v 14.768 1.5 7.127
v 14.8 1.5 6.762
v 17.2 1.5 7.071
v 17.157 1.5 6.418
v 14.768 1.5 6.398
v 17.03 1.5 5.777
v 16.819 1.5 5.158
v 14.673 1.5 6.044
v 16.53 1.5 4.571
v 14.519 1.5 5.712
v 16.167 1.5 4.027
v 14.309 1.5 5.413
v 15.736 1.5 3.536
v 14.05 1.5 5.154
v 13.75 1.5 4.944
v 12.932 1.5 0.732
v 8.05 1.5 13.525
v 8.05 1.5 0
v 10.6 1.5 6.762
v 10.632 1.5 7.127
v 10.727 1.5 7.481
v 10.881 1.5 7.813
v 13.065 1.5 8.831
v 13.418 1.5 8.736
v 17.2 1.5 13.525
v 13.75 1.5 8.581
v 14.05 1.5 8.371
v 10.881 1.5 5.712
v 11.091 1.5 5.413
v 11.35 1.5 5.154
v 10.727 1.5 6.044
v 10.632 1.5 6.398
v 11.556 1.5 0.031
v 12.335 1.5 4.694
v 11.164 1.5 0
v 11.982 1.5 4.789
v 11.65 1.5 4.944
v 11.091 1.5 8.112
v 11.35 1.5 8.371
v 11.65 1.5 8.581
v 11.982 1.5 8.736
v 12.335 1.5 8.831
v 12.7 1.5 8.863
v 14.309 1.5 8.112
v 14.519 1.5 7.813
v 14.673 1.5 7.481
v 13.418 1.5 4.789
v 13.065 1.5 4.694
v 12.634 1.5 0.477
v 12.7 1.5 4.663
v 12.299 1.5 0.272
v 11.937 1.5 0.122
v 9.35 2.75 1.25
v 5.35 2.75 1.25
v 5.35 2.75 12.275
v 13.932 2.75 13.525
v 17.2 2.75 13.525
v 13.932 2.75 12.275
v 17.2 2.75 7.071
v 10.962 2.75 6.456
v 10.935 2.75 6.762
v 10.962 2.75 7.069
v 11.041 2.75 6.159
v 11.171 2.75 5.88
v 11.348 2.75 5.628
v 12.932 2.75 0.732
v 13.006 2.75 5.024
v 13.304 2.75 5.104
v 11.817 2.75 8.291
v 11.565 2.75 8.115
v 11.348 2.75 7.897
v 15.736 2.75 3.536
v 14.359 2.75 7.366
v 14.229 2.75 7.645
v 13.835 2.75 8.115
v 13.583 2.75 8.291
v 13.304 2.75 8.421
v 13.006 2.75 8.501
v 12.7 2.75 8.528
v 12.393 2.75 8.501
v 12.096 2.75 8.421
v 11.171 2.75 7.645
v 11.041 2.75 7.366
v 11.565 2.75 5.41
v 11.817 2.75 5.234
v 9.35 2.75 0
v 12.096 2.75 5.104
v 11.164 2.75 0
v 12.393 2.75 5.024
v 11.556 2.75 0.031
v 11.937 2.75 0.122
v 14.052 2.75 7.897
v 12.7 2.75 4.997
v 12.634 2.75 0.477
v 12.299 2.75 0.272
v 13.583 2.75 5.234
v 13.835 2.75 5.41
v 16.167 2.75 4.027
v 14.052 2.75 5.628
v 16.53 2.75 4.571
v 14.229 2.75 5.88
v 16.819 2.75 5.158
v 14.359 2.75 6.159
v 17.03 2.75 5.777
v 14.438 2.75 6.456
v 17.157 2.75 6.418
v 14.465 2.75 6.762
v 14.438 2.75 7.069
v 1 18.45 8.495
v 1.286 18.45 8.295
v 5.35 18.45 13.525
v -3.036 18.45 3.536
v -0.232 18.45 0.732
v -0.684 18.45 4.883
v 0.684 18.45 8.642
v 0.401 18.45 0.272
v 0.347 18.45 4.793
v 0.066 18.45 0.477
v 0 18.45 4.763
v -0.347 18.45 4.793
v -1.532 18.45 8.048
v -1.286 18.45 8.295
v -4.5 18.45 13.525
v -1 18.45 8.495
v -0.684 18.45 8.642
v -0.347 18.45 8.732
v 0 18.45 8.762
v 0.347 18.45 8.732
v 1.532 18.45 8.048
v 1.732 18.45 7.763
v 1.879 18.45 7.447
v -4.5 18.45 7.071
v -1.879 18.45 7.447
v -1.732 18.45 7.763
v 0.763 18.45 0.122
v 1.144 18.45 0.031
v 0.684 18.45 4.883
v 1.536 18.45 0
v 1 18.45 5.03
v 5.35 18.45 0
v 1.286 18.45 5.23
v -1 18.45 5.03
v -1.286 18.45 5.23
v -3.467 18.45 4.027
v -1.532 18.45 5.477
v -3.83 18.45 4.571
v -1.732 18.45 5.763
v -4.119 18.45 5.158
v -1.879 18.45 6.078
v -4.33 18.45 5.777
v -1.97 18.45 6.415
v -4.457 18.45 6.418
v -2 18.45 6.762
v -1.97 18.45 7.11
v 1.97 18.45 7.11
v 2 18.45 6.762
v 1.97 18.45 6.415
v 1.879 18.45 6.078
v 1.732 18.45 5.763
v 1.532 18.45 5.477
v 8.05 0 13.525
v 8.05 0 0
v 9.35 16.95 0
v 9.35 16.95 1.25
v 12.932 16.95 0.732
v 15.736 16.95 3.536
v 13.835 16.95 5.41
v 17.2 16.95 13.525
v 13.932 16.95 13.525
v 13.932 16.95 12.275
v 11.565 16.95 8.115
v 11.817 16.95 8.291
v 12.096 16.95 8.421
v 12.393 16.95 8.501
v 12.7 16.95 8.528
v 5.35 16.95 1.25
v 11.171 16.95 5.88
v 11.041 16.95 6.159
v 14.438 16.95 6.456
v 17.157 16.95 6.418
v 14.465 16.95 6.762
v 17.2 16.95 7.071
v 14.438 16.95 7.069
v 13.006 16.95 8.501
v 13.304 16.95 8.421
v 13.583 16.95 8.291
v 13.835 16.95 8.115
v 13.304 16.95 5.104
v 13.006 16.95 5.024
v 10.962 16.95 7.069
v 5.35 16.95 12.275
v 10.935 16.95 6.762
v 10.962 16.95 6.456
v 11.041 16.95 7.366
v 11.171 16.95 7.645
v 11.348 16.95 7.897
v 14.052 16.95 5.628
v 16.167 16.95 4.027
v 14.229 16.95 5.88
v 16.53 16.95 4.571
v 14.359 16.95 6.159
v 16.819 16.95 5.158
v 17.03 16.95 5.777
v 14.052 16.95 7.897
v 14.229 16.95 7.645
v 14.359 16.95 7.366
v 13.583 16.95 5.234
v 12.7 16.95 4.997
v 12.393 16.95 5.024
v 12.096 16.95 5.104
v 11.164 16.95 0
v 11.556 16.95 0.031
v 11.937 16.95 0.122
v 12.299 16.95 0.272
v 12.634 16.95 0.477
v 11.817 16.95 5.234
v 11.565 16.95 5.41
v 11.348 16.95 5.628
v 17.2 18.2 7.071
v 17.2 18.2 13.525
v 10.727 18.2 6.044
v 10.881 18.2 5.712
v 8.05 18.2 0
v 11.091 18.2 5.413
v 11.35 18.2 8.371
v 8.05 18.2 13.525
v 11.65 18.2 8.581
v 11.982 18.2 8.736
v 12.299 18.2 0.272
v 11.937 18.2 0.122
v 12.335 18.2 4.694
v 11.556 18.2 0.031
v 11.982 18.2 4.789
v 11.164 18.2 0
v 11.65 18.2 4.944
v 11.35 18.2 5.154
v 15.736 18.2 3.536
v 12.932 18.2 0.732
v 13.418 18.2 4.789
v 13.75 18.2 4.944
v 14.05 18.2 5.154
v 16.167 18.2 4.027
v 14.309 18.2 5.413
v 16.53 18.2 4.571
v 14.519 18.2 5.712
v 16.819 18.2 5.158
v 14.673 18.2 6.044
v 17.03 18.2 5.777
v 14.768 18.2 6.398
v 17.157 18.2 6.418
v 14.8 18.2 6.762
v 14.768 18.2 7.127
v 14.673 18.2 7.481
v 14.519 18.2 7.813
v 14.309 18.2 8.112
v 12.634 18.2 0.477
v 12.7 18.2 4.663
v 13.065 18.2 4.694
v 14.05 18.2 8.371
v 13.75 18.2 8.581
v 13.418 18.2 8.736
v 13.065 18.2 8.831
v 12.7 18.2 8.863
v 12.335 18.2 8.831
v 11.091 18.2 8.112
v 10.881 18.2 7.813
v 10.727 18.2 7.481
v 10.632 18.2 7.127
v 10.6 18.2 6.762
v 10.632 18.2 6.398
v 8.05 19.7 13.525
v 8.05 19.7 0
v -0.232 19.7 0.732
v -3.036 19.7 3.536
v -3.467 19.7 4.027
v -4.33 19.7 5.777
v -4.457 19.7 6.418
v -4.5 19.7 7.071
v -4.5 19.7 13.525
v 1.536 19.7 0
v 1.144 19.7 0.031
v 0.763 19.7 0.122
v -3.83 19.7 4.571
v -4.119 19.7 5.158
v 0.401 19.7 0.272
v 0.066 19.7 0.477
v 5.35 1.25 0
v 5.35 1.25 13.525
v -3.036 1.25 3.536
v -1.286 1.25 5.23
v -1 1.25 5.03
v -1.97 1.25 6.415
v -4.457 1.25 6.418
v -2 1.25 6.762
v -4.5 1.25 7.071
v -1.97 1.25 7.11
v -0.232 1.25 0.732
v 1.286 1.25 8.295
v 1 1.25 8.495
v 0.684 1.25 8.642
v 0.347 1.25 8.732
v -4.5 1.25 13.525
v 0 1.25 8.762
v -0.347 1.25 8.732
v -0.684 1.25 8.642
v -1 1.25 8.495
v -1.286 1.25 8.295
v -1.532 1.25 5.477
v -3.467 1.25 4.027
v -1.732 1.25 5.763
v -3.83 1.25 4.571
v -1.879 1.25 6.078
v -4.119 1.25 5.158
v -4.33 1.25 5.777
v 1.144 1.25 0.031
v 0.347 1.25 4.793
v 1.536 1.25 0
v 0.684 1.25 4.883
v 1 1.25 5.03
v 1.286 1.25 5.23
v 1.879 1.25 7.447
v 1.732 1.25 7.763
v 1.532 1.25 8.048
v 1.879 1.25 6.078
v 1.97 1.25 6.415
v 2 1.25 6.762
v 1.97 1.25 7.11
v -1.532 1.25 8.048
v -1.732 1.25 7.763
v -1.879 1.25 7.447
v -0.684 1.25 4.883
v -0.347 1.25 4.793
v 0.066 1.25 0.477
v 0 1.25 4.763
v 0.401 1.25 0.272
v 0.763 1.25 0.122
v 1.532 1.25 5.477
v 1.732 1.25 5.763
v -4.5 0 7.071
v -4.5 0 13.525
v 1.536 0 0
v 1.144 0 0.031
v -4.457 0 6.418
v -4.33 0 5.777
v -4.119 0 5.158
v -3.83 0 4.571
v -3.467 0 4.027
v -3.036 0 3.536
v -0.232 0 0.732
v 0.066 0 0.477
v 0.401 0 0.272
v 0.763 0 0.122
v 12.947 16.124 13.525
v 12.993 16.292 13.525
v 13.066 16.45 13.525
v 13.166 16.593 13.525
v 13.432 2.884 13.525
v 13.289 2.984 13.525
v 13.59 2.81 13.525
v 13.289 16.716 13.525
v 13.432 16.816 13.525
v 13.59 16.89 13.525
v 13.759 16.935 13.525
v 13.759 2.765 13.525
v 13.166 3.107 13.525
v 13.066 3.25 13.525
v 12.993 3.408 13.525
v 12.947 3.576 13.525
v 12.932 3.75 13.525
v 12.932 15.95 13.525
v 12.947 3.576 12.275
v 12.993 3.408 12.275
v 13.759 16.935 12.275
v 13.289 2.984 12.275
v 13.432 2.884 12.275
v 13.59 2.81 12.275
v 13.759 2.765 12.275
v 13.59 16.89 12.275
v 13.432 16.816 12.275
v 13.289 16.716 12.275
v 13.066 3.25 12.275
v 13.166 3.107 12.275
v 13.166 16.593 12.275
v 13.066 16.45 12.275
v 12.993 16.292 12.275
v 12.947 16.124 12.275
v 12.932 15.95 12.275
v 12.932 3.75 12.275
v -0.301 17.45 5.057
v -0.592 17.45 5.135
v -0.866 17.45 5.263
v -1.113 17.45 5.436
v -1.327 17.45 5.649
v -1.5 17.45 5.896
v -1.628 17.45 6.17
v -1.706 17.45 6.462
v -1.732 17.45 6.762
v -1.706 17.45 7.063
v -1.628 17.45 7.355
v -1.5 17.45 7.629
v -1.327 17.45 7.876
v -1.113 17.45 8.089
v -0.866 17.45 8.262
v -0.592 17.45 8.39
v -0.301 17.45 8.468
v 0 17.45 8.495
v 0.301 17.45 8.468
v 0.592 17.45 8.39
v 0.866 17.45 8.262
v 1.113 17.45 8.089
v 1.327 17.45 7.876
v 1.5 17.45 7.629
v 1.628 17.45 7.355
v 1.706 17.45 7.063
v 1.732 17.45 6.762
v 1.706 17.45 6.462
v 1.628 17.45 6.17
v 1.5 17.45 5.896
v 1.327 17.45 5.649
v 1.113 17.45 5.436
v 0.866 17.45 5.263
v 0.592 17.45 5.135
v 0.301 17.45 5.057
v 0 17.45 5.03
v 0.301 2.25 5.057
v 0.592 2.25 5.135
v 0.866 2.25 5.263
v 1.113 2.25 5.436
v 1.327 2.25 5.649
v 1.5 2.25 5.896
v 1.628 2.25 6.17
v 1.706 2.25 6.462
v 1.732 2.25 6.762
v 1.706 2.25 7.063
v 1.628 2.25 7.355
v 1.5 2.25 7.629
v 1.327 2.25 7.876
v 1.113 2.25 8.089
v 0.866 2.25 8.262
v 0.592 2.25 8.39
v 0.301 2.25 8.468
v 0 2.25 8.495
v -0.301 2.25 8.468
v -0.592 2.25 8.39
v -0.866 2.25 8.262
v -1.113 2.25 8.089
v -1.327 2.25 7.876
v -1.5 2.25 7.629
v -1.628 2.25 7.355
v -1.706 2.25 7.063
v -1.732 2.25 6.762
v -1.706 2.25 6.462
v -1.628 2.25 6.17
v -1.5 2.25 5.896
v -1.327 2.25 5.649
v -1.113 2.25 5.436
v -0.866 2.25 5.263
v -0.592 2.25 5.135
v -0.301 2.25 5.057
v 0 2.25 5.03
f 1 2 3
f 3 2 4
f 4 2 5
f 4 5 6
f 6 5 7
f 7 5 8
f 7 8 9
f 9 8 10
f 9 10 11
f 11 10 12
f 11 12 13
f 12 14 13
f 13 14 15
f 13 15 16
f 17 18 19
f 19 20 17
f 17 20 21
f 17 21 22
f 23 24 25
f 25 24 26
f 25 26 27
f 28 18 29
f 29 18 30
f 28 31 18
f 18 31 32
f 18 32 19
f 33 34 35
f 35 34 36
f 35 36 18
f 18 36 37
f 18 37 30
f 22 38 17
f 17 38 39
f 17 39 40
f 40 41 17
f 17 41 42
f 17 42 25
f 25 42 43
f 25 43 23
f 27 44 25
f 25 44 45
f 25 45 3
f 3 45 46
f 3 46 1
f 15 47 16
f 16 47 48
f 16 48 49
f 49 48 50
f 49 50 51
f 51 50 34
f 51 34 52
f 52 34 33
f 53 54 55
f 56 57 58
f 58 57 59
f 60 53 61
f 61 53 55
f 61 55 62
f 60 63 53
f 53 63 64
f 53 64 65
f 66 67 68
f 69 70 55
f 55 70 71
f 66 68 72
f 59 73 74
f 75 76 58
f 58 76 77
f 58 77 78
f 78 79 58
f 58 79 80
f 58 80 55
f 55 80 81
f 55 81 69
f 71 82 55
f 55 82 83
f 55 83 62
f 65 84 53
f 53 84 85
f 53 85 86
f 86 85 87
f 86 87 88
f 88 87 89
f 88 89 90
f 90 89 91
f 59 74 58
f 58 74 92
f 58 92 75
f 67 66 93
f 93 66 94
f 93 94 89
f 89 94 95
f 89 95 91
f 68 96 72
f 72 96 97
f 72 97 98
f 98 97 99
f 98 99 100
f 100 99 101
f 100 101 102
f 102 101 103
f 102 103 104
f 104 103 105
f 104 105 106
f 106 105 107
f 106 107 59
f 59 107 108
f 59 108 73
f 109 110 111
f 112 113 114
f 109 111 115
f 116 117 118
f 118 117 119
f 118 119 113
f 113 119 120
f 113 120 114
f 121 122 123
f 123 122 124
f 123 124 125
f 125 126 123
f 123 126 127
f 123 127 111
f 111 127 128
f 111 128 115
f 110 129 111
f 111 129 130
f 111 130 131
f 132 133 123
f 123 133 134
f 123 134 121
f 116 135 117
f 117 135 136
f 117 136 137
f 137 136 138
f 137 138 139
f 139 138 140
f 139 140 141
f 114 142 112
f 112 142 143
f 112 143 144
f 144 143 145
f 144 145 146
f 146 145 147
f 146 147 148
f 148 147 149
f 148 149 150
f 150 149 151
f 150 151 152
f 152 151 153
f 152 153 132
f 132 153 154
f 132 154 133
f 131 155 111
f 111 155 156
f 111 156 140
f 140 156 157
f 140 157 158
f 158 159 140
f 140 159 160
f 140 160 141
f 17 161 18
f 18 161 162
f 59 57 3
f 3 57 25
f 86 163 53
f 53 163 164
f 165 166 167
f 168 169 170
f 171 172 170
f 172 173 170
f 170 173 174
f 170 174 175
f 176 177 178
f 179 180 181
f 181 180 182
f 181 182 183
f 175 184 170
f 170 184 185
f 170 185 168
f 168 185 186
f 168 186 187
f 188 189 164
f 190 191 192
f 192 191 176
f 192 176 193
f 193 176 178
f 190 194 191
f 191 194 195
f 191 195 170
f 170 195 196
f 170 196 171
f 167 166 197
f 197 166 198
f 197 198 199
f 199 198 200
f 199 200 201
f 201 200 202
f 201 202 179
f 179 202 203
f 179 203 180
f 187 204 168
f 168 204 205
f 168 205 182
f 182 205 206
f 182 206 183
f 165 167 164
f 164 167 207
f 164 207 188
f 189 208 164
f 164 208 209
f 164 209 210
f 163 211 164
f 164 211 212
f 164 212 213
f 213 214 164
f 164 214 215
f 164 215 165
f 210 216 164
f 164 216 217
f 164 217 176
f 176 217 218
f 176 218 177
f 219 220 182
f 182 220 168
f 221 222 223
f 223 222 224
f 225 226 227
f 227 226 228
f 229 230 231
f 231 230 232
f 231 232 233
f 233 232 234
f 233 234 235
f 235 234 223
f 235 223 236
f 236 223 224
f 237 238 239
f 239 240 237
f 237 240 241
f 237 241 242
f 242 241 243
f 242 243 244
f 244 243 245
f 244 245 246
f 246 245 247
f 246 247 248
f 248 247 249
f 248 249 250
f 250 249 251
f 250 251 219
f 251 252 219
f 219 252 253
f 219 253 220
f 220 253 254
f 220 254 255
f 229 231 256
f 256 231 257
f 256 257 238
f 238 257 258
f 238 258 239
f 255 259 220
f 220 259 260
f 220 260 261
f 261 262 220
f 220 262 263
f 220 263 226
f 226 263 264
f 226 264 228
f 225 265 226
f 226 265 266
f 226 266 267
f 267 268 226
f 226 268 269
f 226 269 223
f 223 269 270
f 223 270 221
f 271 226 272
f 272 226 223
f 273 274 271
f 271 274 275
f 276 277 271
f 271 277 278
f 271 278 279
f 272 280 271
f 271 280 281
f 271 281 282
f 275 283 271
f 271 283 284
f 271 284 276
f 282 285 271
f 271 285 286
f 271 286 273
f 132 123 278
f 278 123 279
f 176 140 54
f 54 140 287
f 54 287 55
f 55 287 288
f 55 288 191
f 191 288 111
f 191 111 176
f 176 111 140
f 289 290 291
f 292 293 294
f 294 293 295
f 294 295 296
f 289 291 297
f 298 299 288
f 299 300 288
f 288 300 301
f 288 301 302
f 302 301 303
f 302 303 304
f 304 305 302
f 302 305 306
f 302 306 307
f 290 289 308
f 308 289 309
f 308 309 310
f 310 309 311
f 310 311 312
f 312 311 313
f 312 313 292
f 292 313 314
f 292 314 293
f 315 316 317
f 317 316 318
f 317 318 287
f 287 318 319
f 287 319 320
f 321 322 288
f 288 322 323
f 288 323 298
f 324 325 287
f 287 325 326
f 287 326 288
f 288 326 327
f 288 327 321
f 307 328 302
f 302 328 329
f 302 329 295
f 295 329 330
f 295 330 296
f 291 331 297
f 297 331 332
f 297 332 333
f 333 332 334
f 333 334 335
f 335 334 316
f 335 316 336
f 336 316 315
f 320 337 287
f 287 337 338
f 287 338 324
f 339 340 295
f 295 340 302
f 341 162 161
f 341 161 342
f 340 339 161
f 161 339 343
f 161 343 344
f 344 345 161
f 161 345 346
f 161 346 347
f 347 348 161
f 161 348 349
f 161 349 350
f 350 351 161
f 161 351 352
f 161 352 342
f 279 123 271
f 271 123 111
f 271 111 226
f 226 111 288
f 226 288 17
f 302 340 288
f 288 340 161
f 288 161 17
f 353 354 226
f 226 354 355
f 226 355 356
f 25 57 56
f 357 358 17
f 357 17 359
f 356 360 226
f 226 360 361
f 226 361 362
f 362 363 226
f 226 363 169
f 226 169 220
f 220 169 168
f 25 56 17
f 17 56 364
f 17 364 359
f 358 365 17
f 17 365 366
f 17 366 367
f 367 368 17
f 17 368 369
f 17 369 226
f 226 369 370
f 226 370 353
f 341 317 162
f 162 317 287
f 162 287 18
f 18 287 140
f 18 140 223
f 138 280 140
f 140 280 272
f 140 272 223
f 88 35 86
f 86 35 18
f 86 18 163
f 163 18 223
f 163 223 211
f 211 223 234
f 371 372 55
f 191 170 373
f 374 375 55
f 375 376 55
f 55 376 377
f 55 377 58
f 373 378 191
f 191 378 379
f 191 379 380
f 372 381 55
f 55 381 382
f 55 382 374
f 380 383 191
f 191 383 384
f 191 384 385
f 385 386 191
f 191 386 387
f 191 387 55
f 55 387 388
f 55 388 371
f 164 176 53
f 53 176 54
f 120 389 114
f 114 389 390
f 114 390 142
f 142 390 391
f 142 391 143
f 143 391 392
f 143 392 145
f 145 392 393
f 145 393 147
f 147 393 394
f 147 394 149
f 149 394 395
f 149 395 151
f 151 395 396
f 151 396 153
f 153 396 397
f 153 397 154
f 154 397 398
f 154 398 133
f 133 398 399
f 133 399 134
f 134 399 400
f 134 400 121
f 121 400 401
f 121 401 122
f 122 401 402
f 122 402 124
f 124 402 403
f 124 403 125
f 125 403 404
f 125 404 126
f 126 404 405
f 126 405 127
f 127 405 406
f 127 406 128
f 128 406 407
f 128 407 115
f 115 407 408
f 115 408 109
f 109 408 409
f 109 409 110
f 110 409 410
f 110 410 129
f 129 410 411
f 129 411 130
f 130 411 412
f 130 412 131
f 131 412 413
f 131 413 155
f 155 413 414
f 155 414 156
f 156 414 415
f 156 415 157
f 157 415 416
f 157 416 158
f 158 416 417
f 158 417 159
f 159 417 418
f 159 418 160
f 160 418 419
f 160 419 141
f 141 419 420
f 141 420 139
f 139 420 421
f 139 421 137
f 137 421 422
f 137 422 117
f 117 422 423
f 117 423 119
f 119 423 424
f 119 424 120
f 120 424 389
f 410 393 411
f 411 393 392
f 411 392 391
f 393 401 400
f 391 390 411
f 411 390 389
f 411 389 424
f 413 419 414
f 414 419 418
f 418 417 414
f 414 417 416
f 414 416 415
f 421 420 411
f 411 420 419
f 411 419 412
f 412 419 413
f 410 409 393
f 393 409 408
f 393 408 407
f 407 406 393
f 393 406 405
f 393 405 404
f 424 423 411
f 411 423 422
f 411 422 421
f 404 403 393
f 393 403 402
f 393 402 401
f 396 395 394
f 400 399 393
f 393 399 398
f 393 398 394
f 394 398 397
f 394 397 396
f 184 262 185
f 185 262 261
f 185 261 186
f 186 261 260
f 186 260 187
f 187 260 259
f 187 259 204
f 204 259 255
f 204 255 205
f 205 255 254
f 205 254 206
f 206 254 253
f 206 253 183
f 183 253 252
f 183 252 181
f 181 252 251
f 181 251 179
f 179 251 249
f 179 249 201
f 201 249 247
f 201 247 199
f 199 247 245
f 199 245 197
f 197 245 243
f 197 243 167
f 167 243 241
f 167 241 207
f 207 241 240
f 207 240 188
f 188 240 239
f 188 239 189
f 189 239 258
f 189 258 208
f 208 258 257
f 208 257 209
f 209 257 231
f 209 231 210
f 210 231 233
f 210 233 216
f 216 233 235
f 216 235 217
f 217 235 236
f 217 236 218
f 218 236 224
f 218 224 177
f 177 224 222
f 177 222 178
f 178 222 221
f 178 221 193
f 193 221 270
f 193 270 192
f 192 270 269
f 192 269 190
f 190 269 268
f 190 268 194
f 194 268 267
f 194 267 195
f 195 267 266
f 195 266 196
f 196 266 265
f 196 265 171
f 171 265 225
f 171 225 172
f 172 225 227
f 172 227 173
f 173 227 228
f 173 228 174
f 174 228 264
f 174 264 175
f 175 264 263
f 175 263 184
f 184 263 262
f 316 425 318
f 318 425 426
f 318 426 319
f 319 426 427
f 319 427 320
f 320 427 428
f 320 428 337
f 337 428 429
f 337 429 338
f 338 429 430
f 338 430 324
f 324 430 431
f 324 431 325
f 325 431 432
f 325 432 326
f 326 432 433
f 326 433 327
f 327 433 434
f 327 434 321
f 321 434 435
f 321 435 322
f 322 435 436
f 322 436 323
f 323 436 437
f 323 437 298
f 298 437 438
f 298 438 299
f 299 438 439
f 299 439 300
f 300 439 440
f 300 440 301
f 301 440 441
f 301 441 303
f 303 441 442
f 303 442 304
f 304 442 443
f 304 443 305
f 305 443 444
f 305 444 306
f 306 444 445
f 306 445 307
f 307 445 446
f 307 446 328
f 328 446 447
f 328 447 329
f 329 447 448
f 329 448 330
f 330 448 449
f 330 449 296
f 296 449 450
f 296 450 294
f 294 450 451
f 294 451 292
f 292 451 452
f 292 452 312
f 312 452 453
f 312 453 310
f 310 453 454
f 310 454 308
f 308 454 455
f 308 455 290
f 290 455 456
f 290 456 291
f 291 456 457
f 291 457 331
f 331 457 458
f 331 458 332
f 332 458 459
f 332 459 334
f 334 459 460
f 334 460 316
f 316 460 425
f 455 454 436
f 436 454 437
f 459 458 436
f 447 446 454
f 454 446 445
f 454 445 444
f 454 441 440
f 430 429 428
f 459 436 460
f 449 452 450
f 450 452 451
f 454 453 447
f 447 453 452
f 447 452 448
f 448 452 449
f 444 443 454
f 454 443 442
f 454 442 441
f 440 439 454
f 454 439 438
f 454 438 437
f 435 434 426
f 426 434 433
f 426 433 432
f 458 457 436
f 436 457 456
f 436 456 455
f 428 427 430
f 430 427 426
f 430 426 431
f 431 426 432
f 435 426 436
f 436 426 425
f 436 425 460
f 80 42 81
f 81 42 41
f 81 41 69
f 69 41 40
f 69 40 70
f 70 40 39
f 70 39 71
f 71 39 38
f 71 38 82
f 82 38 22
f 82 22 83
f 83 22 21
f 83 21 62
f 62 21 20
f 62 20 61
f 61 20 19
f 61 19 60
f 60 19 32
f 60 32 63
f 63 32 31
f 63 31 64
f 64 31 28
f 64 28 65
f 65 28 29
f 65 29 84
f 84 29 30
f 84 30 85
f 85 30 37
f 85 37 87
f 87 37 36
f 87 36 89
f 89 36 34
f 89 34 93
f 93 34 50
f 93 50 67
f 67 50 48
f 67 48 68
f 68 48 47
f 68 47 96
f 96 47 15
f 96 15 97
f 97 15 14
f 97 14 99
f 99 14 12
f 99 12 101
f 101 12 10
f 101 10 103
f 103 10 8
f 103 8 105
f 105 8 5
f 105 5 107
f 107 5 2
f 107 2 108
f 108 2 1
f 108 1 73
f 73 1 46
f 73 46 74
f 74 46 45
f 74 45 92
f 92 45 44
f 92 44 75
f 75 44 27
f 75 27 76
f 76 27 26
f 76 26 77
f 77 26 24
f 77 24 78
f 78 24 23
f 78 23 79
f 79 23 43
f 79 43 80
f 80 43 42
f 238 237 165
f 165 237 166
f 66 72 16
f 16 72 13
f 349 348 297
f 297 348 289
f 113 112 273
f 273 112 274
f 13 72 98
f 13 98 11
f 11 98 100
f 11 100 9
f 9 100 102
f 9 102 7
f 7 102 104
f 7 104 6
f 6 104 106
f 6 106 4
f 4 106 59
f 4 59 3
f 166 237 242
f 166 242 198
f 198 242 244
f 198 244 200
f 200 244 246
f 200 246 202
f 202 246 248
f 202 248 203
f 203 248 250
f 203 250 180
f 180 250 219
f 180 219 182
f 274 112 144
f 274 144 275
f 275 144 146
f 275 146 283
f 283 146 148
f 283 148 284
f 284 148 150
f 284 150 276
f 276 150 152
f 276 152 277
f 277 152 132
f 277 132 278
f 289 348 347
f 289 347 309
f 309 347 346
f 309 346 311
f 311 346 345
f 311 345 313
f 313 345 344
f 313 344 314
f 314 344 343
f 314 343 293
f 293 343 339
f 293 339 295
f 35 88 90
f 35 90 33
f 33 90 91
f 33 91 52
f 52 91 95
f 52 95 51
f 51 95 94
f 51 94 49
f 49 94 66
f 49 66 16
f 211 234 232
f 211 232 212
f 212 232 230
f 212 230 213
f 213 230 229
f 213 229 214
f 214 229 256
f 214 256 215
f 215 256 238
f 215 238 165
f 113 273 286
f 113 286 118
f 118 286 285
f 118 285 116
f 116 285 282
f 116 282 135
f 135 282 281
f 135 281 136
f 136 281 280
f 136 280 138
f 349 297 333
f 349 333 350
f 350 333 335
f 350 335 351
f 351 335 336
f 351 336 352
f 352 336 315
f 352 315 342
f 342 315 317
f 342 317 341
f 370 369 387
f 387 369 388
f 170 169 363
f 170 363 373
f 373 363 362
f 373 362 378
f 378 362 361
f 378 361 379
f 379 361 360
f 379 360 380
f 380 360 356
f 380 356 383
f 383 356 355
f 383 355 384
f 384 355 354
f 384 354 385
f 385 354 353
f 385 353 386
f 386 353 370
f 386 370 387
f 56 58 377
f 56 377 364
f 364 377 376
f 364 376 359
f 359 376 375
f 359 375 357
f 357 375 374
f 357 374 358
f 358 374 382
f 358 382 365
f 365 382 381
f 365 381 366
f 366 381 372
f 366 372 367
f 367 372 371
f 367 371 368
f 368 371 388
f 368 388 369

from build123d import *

# Parameters (mm, degrees)
BOSS_EXTRUDE1_DEPTH = 13.525
SKETCH3_W           = 11.025
SKETCH3_H           = 14.2
CUT_EXTRUDE1_DEPTH  = 5
SKETCH4_R           = 2
BOSS_PIVOT_DEPTH    = 1
BOSS_PIVOT_TAPER    = 15
SKETCH6_R           = 2.1
PIVOT_RECESS_DEPTH  = 1.25
PIVOT_RECESS_TAPER  = 15
CHAMFER5_SIZE       = 5
FILLET2_R           = 5
FILLET3_R           = 2.5
SKETCH8_W           = 3.997196271
SKETCH8_H           = 14.2
BOSS_EXTRUDE4_DEPTH = 1.25
FILLET4_R           = 1


with BuildPart() as part:
    # Sketch1 → Boss-Extrude1 (new body)
    with BuildSketch(Plane.XY):
        Polygon((5.35, 3.25), (5.35, 1.25), (-4.5, 1.25), (-4.5, 0), (8.05, 0), (8.05, 1.5), (17.2, 1.5), (17.2, 2.75), (9.35, 2.75), (9.35, 16.95), (17.2, 16.95), (17.2, 18.2), (8.05, 18.2), (8.05, 19.7), (-4.5, 19.7), (-4.5, 18.45), (5.35, 18.45), align=None)
    extrude(amount=BOSS_EXTRUDE1_DEPTH)

    # Sketch3 → Cut-Extrude1 (cut)
    with BuildSketch(Plane(origin=(9.35, 0, 0), x_dir=(0, 0, -1), z_dir=(1, 0, 0))):
        with Locations((-6.7625, 9.85)):
            Rectangle(SKETCH3_W, SKETCH3_H)
    extrude(amount=-CUT_EXTRUDE1_DEPTH, mode=Mode.SUBTRACT)

    # Sketch4 → boss pivot (add)
    with BuildSketch(Plane.XZ.offset(-18.45)):
        with Locations((0, 6.7625)):
            Circle(SKETCH4_R)
    boss_pivot = extrude(amount=BOSS_PIVOT_DEPTH, taper=BOSS_PIVOT_TAPER)

    # Sketch6 → pivot recess (cut)
    with BuildSketch(Plane(origin=(0, 18.2, 0), x_dir=(1, 0, 0), z_dir=(0, 1, 0))):
        with Locations((12.7, -6.7625)):
            Circle(SKETCH6_R)
    pivot_recess = extrude(amount=-PIVOT_RECESS_DEPTH, taper=PIVOT_RECESS_TAPER, mode=Mode.SUBTRACT)

    # Mirror1: boss pivot, pivot recess across plane
    add(boss_pivot.mirror(Plane.ZX.offset(9.85)))
    add(pivot_recess.mirror(Plane.ZX.offset(9.85)), mode=Mode.SUBTRACT)

    # Chamfer5
    chamfer5_edges = [part.edges().sort_by_distance(p)[0] for p in [
        (-4.5, 0.625, 0),
        (-4.5, 19.075, 0),
        (17.2, 17.575, 0),
        (17.2, 2.125, 0),
    ]]
    chamfer(chamfer5_edges, length=CHAMFER5_SIZE)

    # Fillet2
    fillet2_edges = [part.edges().sort_by_distance(p)[0] for p in [
        (17.2, 17.575, 5),
        (17.2, 2.125, 5),
        (-4.5, 0.625, 5),
        (-4.5, 19.075, 5),
    ]]
    fillet(fillet2_edges, radius=FILLET2_R)

    # Fillet3
    fillet3_edges = [part.edges().sort_by_distance(p)[0] for p in [
        (0.5, 19.075, 0),
        (0.5, 0.625, 0),
        (12.2, 2.125, 0),
        (12.2, 17.575, 0),
    ]]
    fillet(fillet3_edges, radius=FILLET3_R)

    # Sketch8 → Boss-Extrude4 (add)
    with BuildSketch(Plane.XY.offset(13.525)):
        with Locations((10.933634912, 9.85)):
            Rectangle(SKETCH8_W, SKETCH8_H)
    extrude(amount=-BOSS_EXTRUDE4_DEPTH)

    # Fillet4
    fillet4_edges = [part.edges().sort_by_distance(p)[0] for p in [
        (12.932233047, 16.95, 12.9),
        (12.932233047, 2.75, 12.9),
    ]]
    fillet(fillet4_edges, radius=FILLET4_R)


solid = part.part
